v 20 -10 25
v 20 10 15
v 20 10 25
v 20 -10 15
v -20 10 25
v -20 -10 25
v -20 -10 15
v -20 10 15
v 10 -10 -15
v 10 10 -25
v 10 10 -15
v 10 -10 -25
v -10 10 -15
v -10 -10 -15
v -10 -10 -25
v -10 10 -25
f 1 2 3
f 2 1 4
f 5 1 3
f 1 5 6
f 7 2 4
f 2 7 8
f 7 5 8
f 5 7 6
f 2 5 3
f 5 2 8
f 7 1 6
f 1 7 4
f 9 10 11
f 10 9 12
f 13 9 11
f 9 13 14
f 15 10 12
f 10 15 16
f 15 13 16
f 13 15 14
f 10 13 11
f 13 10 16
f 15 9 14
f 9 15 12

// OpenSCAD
// Define dimensions for the components
large_block_length = 40;  // Length of the large rectangular block
large_block_width = 20;   // Width of the large rectangular block
large_block_height = 10;  // Height of the large rectangular block

small_block_length = 20;  // Length of the small rectangular block
small_block_width = 20;   // Width of the small rectangular block
small_block_height = 10;  // Height of the small rectangular block

// Define the positional relationship between components
gap_between_blocks = 10;  // Vertical gap between the two blocks

// Layer 1: Large rectangular block
module rectangular_block_large() {
    cube([large_block_length, large_block_width, large_block_height], center = true);
}

// Layer 2: Small rectangular block
module rectangular_block_small() {
    cube([small_block_length, small_block_width, small_block_height], center = true);
}

// Assemble the model
module assembly() {
    // Position the large block at the top
    translate([0, 0, large_block_height / 2 + gap_between_blocks + small_block_height / 2])
        rectangular_block_large();

    // Position the small block below the large block
    translate([0, 0, -large_block_height / 2 - gap_between_blocks - small_block_height / 2])
        rectangular_block_small();
}

// Render the assembly
assembly();
